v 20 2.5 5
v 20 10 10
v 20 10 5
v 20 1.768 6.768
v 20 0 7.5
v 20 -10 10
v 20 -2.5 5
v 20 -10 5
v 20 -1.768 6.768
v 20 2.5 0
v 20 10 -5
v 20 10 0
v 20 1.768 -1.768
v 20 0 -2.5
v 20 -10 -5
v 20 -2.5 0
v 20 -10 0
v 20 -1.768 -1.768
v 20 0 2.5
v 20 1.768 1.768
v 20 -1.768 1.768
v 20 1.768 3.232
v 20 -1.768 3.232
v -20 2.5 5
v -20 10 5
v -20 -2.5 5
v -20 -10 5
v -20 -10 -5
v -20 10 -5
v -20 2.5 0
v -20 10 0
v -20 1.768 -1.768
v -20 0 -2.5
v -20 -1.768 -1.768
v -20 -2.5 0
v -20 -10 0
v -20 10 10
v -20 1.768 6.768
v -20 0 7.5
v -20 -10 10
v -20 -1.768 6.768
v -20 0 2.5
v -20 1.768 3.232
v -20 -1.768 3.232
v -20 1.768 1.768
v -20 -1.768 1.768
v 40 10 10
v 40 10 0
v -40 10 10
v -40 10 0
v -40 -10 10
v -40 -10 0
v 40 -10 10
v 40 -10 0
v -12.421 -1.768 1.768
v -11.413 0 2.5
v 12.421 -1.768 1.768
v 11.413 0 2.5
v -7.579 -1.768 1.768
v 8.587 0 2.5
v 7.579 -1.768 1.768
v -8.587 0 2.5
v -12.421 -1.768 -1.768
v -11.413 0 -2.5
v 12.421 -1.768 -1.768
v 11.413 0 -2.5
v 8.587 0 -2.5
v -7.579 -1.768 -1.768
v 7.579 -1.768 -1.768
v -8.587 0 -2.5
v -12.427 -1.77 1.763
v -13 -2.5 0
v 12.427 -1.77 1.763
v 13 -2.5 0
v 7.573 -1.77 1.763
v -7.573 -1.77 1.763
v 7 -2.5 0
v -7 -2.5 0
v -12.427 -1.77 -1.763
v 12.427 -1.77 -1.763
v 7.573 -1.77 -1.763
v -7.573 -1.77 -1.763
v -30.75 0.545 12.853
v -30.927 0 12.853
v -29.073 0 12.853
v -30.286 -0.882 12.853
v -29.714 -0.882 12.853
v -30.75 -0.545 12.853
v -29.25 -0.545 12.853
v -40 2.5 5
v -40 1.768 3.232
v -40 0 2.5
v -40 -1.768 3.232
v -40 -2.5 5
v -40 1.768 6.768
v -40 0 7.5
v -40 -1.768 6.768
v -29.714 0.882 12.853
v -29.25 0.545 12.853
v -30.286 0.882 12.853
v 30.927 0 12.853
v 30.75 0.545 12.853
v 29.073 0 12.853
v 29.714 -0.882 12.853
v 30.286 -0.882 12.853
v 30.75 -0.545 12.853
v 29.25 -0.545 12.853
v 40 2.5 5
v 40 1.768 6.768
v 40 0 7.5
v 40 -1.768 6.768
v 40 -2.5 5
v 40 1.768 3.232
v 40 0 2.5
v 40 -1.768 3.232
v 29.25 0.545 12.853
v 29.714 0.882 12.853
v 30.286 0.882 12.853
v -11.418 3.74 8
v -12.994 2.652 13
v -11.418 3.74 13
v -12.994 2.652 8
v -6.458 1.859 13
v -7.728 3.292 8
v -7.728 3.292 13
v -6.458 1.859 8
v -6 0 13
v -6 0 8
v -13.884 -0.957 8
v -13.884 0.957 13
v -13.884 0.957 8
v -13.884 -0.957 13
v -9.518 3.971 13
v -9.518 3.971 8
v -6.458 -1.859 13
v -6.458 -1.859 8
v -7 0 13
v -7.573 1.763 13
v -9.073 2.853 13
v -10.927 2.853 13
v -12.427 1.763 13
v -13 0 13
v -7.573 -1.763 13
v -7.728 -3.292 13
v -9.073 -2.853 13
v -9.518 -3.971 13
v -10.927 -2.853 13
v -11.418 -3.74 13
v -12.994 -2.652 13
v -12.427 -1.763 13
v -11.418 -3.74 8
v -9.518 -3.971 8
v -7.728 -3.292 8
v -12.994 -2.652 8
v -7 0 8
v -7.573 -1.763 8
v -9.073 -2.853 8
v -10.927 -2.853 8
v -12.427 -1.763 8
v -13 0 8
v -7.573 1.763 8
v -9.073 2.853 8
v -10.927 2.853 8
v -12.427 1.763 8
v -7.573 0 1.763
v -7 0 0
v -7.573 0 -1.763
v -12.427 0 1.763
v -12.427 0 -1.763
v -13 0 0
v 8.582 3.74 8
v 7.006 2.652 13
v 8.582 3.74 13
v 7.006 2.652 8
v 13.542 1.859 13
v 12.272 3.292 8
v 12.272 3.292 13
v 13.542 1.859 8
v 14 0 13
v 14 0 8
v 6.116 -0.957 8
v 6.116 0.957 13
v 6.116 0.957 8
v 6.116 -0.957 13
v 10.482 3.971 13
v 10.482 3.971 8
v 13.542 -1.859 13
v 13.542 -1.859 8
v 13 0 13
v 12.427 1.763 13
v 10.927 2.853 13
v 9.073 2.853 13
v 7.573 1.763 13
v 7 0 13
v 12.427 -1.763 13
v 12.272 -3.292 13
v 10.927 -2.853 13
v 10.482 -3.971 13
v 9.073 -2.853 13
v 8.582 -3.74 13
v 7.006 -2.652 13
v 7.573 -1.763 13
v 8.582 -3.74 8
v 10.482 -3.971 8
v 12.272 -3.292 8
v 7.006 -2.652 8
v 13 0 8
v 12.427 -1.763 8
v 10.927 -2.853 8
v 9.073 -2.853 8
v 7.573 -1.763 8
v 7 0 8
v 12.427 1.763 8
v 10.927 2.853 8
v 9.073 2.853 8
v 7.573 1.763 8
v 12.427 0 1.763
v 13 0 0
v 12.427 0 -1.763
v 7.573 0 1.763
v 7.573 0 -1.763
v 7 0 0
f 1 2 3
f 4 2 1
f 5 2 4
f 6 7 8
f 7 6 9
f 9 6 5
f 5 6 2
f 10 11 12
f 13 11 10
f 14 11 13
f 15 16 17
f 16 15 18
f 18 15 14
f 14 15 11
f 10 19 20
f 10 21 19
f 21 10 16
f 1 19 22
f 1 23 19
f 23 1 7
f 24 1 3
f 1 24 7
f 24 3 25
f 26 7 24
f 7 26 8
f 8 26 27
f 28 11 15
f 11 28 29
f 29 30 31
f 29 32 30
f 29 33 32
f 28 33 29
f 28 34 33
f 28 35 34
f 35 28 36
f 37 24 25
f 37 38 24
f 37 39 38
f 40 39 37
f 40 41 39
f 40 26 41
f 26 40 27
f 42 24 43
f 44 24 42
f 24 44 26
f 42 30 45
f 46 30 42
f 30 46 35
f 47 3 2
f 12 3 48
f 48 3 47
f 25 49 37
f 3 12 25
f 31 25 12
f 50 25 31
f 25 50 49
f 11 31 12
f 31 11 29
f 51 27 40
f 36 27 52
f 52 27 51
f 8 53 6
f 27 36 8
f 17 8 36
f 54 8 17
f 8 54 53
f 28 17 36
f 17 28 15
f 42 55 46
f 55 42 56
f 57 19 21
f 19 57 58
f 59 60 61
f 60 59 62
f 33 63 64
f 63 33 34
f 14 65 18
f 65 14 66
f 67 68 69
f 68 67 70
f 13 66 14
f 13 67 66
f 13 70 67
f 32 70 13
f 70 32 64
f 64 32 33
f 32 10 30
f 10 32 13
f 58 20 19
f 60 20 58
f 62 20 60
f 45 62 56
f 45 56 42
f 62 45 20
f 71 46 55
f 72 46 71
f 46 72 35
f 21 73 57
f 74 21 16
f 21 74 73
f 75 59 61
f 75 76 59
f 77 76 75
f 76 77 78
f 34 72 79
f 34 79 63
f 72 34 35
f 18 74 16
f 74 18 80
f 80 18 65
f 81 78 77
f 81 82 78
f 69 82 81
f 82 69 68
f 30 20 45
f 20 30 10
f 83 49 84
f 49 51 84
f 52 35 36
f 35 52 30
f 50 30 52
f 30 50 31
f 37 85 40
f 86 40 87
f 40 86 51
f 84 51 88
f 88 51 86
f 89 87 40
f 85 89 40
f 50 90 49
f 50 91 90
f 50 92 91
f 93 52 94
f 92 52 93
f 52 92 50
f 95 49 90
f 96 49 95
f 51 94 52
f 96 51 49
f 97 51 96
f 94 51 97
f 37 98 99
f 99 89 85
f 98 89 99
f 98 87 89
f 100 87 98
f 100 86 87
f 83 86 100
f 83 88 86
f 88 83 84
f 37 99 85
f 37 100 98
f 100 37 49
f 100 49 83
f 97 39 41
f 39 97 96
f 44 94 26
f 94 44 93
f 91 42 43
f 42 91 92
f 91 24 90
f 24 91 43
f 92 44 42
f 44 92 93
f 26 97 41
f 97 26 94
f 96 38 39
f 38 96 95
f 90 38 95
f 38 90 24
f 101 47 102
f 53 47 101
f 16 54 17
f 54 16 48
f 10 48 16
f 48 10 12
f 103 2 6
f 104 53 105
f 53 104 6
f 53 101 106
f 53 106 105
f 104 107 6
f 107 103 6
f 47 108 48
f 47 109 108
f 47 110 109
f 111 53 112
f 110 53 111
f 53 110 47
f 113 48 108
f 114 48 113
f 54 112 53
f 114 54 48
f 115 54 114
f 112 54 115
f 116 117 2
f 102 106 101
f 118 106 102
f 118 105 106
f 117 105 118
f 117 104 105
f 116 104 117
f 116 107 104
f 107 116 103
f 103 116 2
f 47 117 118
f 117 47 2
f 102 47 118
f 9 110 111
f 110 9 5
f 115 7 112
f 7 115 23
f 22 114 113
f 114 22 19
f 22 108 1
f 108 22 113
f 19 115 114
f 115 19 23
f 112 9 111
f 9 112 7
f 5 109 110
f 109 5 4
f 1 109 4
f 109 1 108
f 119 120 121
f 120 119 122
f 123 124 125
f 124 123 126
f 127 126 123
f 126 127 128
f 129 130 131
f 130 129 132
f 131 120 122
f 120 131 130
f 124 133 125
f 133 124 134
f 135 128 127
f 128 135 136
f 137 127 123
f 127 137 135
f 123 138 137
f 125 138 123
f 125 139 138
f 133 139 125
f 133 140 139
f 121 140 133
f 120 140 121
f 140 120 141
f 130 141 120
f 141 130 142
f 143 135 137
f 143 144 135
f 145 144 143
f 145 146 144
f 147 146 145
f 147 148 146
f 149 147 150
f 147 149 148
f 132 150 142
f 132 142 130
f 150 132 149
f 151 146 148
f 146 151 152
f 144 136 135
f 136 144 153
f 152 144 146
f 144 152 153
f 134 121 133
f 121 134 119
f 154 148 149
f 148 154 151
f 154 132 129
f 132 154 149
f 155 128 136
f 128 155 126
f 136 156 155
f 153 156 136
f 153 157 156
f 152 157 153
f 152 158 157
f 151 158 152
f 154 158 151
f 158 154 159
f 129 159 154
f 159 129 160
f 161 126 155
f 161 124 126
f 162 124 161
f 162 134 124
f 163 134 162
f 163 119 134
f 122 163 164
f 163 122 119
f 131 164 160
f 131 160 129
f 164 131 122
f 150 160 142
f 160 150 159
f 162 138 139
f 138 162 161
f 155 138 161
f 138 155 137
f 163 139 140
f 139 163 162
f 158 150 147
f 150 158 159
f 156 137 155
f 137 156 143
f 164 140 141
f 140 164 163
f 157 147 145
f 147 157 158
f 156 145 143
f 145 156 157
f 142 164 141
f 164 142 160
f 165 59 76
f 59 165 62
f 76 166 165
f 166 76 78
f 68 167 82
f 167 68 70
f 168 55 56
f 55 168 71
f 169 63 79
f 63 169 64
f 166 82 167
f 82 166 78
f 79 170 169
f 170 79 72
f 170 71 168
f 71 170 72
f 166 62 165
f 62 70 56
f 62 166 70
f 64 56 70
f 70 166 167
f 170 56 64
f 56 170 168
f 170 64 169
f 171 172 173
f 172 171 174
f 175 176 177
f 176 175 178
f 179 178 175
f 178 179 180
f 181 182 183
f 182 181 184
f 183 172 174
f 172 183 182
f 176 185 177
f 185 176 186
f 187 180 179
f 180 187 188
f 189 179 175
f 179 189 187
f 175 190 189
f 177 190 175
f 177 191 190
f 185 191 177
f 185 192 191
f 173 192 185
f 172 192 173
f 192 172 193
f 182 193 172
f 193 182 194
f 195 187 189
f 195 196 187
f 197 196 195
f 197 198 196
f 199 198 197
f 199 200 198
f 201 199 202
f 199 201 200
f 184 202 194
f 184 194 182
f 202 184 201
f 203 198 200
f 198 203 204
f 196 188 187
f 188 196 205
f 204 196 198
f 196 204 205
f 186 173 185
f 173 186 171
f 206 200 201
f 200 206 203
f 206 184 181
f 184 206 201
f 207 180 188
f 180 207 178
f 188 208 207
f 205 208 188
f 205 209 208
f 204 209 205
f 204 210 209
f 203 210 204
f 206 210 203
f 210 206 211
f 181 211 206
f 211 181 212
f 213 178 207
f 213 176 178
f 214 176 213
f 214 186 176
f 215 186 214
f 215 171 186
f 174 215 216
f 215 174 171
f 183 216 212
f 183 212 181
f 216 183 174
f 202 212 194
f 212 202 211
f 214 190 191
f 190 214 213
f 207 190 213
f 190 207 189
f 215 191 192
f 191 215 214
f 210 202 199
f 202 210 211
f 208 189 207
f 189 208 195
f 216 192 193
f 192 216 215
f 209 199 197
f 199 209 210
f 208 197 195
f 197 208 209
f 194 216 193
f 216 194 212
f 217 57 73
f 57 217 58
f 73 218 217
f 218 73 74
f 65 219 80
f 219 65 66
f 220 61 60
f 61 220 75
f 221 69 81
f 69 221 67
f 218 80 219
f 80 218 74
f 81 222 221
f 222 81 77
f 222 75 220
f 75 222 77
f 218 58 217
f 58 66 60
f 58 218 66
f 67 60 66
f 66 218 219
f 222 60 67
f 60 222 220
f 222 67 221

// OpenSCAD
// Parameters
central_block_length = 40;
central_block_width = 20;
central_block_height = 10;
hole_diameter = 5;
hole_offset = 10;

side_block_length = 20;
side_block_width = 20;
side_block_height = 10;
side_block_curve_radius = 3; // Reduced curvature to match original model

bolt_diameter = 6; // Increased bolt diameter to match original model
bolt_length = 8; // Shortened bolt length to match original model

nut_diameter = 8; // Increased nut size to match original model
nut_thickness = 5; // Adjusted nut thickness to match original model

// Central Block
module central_block() {
    difference() {
        cube([central_block_length, central_block_width, central_block_height], center = true);
        translate([-central_block_length/2 + hole_offset, 0, 0])
            rotate([0, 90, 0])
            cylinder(r = hole_diameter/2, h = central_block_width + 2, center = true);
        translate([central_block_length/2 - hole_offset, 0, 0])
            rotate([0, 90, 0])
            cylinder(r = hole_diameter/2, h = central_block_width + 2, center = true);
    }
}

// Side Block
module side_block() {
    difference() {
        hull() {
            translate([-side_block_length/2, -side_block_width/2, 0])
                cube([side_block_length, side_block_width, side_block_height]);
            translate([0, 0, side_block_height])
                sphere(r = side_block_curve_radius);
        }
        translate([-side_block_length/2 + hole_offset, 0, side_block_height/2])
            rotate([0, 90, 0])
            cylinder(r = hole_diameter/2, h = side_block_width + 2, center = true);
    }
}

// Bolt
module bolt() {
    cylinder(r = bolt_diameter/2, h = bolt_length, center = false);
}

// Nut
module nut() {
    difference() {
        cylinder(r = nut_diameter/2, h = nut_thickness, center = false);
        translate([0, 0, nut_thickness/2])
            cylinder(r = bolt_diameter/2, h = nut_thickness + 2, center = true);
    }
}

// Assembly
module assembly() {
    // Central Block
    central_block();

    // Side Blocks
    translate([-central_block_length/2 - side_block_length/2, 0, 0])
        side_block();
    translate([central_block_length/2 + side_block_length/2, 0, 0])
        mirror([1, 0, 0])
            side_block();

    // Bolts and Nuts
    for (i = [-1, 1]) {
        translate([i * (central_block_length/2 - hole_offset), 0, 0]) {
            rotate([90, 0, 0])
                bolt();
            translate([0, 0, bolt_length])
                nut();
        }
    }
}

// Render the assembly
assembly();
